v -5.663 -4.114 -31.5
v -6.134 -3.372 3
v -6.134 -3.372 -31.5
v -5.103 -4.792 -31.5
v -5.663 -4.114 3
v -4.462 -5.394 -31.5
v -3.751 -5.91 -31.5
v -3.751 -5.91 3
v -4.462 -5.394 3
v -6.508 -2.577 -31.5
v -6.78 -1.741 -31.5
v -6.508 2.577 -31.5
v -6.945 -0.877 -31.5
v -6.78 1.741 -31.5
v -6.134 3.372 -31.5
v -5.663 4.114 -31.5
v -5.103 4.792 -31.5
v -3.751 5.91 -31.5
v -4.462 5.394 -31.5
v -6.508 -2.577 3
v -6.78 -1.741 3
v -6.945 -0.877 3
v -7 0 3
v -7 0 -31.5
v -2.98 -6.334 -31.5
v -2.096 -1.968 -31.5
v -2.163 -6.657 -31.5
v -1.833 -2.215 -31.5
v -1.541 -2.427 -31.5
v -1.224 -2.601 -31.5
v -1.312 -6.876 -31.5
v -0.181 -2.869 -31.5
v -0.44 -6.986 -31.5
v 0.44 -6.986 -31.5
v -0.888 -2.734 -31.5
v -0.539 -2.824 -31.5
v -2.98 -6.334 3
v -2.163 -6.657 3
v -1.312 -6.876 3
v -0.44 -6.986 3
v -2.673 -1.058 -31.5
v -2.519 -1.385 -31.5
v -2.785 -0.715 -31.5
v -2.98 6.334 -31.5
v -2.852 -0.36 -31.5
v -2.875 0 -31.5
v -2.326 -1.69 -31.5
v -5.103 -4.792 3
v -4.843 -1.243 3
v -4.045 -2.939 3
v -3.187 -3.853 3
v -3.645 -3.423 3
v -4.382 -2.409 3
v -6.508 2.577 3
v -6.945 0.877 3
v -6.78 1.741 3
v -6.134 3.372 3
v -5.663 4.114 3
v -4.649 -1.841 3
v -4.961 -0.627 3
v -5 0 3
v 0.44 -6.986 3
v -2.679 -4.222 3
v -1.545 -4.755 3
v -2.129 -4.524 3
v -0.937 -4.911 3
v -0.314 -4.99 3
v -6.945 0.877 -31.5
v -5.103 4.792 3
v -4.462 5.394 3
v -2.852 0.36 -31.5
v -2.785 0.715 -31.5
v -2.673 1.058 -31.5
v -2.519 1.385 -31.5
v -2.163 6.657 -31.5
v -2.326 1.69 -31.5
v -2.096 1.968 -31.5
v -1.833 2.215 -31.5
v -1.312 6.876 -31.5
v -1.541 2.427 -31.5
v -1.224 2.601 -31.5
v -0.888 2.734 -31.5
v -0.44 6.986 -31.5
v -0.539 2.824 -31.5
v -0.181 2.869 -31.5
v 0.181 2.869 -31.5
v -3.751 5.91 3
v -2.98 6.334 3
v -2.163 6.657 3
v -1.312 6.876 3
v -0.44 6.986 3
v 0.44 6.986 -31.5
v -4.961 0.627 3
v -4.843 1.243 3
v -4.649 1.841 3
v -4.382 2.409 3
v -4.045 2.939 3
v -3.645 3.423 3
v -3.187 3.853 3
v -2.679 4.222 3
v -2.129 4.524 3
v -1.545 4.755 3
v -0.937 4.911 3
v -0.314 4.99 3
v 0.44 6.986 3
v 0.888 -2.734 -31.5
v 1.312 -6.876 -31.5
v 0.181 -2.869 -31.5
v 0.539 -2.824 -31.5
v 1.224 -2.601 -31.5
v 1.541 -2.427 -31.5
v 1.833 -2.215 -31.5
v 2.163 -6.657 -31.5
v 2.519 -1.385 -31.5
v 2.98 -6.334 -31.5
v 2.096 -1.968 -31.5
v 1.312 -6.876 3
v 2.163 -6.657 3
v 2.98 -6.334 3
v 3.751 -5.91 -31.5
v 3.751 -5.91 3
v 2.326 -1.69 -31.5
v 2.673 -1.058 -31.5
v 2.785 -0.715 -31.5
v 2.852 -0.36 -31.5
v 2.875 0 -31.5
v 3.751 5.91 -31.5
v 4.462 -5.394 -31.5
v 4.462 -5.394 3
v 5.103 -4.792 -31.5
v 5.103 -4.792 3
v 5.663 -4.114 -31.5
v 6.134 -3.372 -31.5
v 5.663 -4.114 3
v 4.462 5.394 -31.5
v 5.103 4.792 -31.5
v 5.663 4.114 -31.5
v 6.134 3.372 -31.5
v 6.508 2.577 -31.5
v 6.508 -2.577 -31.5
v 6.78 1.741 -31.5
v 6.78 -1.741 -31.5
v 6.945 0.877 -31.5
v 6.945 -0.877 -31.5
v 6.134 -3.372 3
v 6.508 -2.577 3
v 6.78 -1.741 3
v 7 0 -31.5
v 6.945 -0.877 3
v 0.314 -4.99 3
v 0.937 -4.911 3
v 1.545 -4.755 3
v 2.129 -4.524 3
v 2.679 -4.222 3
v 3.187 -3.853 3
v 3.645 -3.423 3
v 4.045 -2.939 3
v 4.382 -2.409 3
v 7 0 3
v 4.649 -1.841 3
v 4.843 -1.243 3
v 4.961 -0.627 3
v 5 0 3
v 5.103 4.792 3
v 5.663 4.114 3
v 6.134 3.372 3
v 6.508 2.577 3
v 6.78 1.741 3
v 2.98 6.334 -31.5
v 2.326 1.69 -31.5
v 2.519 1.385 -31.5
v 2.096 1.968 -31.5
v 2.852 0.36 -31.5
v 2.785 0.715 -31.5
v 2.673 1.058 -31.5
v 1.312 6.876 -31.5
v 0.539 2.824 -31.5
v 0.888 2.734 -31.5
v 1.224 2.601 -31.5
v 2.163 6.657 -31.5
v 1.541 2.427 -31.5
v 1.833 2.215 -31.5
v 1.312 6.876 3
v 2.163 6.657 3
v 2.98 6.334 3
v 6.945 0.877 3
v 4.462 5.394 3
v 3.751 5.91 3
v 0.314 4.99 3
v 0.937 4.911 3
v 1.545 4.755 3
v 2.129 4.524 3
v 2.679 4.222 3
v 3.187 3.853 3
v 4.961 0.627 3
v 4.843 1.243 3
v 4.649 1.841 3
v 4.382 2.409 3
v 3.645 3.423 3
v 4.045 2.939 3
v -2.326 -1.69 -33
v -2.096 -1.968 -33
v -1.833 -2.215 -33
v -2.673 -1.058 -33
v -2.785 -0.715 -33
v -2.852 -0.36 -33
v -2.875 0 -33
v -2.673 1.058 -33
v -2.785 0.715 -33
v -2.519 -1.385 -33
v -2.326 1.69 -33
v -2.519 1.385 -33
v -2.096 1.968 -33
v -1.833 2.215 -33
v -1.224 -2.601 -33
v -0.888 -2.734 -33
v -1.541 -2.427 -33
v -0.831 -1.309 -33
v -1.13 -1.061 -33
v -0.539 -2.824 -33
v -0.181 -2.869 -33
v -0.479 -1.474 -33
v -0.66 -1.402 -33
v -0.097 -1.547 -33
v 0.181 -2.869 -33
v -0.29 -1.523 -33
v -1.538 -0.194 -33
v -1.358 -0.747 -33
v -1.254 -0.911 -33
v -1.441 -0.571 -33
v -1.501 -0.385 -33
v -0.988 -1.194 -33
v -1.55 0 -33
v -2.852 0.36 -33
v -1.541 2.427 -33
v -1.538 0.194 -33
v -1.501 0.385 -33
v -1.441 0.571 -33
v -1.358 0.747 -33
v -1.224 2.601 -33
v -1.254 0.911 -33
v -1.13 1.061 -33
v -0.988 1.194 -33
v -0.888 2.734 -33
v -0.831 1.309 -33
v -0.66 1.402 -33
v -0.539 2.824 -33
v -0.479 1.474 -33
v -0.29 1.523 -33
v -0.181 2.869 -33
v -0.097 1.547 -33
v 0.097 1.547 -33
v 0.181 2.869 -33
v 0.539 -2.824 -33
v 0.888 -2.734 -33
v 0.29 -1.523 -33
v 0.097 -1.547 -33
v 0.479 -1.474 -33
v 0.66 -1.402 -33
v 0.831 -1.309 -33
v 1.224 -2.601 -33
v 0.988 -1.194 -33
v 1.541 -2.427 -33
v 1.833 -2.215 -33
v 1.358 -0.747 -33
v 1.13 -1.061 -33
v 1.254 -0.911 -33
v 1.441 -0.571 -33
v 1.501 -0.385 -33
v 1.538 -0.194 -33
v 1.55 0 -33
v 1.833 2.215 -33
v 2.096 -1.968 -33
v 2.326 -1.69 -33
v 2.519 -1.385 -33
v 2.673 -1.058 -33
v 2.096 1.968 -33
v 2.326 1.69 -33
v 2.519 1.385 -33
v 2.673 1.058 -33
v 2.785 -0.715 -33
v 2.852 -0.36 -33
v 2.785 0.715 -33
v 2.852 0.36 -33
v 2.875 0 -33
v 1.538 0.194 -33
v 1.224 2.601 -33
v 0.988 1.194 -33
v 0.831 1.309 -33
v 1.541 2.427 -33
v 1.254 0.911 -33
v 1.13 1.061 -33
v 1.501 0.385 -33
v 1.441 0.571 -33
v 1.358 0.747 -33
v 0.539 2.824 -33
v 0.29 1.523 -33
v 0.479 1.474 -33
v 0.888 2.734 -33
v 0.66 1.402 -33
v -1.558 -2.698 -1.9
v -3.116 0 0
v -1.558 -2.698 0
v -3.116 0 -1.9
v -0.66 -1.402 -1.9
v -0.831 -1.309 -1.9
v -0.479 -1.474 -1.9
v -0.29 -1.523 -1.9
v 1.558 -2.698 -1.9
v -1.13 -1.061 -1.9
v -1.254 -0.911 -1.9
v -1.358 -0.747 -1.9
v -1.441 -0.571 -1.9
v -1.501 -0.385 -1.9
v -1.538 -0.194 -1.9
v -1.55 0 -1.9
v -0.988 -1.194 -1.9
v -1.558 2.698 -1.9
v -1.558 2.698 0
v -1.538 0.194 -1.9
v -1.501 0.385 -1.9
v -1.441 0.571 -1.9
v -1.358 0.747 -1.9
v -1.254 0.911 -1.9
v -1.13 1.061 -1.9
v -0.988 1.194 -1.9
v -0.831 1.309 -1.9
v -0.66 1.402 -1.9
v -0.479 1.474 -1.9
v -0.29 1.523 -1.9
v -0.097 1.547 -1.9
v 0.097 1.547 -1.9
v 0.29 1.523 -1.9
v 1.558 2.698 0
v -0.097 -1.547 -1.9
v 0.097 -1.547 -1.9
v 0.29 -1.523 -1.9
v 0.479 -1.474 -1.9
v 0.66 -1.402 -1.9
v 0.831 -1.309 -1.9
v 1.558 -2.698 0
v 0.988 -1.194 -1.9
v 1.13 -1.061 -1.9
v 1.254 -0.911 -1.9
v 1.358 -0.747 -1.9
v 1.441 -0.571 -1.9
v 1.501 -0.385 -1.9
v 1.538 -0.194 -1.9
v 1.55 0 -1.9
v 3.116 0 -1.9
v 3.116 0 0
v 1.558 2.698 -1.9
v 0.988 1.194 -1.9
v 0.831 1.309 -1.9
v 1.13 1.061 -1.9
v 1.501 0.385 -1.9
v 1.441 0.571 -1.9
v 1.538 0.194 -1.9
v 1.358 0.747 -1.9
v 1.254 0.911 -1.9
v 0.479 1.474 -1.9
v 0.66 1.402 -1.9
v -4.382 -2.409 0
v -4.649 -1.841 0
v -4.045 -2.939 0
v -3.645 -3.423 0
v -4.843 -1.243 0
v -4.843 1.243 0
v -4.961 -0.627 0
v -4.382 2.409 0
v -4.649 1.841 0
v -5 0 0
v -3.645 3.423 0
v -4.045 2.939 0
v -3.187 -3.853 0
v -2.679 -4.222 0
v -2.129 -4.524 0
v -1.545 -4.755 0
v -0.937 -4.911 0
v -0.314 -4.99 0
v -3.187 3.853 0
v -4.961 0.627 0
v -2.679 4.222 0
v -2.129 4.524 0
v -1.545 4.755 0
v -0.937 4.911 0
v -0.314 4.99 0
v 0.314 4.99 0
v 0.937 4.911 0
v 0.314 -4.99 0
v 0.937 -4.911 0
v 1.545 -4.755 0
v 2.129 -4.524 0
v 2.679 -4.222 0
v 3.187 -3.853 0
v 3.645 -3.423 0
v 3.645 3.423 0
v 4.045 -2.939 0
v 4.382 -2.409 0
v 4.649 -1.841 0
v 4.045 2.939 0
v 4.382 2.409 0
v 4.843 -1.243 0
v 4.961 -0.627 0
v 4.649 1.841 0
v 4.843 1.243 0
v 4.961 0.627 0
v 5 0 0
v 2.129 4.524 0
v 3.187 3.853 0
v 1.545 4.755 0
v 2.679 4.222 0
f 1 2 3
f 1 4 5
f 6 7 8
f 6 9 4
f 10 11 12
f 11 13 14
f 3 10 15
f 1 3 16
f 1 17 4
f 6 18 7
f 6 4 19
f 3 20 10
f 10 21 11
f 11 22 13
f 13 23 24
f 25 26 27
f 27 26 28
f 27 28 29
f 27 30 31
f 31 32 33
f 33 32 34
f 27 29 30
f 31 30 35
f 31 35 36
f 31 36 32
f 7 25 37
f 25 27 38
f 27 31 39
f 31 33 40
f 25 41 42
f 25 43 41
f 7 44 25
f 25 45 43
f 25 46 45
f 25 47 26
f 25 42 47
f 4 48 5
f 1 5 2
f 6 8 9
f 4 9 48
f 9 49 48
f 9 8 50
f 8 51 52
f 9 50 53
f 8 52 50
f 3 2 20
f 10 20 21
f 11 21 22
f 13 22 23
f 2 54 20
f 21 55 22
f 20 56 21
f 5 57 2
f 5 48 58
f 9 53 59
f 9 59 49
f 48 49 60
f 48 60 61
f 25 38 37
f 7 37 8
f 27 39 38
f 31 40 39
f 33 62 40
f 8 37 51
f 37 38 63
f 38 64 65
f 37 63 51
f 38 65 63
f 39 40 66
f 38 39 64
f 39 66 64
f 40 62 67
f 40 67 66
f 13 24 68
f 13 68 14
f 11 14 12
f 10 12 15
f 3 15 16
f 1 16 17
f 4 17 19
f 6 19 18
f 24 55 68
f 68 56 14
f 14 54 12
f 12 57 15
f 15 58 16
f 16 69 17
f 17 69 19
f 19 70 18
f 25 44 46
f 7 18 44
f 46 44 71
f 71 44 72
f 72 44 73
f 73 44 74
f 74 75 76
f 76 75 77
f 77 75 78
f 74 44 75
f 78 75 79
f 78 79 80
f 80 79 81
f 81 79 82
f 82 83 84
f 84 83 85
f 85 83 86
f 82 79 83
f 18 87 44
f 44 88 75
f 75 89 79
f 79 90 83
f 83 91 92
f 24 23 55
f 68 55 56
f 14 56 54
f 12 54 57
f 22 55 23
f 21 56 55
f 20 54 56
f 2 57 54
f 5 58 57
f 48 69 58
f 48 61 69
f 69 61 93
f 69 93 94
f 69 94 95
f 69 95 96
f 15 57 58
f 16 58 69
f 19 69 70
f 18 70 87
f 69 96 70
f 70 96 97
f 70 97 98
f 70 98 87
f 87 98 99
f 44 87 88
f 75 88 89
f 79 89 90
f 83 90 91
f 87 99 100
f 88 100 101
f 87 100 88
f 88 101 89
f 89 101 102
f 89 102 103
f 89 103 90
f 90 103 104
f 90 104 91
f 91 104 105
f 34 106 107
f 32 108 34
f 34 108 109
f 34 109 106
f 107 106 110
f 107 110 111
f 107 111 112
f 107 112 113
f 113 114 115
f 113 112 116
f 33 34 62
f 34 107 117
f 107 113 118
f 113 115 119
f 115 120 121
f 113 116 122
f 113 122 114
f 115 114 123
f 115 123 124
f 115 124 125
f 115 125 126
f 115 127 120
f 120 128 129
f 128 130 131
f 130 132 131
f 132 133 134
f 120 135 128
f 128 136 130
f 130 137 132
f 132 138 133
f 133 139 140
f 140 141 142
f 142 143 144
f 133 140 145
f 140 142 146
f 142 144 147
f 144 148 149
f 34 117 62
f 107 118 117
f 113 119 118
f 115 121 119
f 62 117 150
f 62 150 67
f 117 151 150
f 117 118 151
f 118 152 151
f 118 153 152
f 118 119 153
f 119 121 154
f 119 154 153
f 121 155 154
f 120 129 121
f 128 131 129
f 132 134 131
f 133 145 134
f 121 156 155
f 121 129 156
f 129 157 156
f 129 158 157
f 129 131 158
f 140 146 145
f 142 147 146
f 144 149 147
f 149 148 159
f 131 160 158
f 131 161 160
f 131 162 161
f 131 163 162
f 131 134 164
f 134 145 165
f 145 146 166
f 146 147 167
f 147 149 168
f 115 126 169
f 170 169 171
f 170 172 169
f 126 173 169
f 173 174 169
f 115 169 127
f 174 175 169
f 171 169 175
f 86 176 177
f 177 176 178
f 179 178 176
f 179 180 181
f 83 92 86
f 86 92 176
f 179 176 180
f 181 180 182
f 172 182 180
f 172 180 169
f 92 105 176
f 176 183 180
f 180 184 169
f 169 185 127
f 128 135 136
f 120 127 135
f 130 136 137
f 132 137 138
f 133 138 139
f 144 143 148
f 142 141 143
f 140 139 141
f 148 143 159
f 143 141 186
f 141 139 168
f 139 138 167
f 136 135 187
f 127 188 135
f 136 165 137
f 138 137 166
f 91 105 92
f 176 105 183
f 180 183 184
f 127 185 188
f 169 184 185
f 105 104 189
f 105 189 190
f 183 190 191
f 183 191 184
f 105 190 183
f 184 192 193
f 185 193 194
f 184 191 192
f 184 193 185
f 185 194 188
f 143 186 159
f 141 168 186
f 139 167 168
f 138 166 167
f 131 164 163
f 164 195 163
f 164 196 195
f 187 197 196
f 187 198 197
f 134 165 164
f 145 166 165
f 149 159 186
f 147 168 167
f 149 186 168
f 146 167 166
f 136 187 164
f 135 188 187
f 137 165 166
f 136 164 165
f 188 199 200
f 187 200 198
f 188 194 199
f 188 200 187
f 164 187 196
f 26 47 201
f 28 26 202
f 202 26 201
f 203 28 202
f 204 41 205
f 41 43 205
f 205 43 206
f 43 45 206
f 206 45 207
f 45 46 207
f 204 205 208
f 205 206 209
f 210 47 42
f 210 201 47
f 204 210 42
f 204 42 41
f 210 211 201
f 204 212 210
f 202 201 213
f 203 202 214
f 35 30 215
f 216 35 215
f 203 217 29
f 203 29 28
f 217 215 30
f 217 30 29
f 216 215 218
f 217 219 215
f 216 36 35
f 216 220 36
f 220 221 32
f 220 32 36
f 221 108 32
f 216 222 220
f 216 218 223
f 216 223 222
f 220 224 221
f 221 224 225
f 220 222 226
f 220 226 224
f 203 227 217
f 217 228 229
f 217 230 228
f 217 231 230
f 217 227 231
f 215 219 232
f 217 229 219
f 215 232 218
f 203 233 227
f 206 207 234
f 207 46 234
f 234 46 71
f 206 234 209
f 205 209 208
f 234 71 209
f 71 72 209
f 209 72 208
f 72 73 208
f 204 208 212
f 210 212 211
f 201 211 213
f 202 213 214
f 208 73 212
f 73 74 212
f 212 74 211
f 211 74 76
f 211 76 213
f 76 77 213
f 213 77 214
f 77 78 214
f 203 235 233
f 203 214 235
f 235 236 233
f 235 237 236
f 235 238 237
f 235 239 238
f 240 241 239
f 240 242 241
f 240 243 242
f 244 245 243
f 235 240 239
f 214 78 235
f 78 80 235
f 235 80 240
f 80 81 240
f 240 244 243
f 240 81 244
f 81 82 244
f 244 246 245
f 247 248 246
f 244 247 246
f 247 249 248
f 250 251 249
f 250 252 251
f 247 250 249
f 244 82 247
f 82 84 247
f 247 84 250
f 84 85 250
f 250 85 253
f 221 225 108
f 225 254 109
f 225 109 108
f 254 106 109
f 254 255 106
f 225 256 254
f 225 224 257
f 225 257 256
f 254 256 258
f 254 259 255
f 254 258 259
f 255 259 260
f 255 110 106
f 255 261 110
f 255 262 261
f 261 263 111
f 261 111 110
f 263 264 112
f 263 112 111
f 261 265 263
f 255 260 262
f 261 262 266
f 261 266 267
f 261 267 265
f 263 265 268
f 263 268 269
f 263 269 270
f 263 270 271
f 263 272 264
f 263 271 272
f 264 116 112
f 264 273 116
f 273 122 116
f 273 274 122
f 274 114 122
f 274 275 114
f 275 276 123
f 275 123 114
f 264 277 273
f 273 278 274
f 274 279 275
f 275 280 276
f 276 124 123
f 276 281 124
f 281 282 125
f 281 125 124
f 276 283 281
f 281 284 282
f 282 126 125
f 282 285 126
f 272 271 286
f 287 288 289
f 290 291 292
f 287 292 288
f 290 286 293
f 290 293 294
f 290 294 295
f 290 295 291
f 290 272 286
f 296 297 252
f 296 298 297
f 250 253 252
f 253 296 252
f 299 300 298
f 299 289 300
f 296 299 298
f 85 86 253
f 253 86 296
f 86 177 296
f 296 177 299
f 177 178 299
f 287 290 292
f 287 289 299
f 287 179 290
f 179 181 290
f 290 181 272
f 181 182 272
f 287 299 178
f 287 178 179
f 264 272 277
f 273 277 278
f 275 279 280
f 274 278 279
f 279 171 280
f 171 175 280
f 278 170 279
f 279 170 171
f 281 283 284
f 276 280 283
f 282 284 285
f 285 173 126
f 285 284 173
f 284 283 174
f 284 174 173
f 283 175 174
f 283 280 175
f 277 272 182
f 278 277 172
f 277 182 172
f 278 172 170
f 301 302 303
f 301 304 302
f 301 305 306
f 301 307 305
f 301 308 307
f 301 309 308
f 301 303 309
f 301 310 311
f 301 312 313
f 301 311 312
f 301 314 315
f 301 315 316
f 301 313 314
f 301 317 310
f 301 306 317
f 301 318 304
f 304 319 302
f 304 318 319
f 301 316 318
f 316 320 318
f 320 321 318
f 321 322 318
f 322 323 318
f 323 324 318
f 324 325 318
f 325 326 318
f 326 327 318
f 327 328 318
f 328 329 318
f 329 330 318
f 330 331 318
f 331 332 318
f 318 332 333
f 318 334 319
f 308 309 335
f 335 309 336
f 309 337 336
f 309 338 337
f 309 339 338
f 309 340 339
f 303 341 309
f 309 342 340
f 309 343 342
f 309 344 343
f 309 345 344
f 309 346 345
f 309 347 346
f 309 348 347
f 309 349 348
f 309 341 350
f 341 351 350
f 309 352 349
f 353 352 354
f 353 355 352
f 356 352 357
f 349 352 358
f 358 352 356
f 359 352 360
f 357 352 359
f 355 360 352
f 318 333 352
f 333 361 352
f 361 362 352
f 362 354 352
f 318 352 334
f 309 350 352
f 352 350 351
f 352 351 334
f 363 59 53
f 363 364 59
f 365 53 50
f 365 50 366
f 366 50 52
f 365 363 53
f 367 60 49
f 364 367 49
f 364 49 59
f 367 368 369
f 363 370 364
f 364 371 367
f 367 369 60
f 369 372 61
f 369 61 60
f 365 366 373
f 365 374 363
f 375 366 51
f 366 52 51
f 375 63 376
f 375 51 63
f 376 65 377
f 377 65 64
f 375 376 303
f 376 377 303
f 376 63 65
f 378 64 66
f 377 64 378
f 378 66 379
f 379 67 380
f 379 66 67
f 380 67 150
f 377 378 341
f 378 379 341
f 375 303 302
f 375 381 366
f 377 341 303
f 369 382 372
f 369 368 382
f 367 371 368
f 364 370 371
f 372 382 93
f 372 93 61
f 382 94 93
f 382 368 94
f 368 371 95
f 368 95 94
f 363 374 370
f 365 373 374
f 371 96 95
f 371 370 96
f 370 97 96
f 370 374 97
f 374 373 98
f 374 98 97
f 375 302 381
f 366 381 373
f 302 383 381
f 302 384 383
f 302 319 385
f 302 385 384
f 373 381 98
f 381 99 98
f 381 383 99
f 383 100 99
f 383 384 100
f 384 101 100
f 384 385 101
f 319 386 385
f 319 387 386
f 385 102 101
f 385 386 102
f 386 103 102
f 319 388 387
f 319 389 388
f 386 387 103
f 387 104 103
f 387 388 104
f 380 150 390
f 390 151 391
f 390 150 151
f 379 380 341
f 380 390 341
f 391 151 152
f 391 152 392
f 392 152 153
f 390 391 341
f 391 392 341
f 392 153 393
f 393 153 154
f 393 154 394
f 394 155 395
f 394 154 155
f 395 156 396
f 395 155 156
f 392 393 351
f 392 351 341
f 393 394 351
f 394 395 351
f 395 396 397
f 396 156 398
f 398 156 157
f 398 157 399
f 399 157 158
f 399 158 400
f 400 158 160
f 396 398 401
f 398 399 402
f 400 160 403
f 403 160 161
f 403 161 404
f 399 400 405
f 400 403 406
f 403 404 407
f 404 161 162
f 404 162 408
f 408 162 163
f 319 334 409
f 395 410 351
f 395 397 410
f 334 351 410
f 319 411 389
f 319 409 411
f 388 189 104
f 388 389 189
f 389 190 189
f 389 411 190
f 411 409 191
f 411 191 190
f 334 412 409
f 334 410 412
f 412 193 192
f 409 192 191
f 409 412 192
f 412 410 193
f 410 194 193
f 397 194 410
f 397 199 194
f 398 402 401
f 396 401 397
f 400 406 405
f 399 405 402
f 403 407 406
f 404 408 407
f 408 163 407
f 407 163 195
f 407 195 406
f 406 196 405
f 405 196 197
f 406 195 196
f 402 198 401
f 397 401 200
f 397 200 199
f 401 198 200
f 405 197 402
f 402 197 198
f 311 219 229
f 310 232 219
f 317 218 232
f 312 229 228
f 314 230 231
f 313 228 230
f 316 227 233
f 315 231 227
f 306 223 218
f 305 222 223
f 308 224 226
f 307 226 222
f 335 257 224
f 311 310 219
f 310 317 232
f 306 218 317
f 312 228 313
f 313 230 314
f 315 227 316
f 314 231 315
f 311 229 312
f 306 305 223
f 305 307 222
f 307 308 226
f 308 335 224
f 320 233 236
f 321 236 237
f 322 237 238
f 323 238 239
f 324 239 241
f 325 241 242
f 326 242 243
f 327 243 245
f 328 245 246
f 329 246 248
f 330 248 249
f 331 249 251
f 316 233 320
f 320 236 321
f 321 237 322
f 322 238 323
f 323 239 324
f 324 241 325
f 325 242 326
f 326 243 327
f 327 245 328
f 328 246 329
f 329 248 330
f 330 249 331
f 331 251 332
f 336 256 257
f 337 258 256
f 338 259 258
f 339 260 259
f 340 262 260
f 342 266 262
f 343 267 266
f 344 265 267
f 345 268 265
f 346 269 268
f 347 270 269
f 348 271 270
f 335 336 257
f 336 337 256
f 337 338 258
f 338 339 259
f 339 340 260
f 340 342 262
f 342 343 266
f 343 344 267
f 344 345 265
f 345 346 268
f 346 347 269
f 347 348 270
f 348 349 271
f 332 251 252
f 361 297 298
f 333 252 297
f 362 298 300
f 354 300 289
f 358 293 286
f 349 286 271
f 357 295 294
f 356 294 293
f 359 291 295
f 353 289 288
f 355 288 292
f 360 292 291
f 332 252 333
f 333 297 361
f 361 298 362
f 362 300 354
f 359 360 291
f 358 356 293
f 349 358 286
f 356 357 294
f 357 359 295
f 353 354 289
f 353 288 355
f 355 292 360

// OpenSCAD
$fn = 50;


difference() {
	union() {
		translate(v = [0, 0, -31.5000000000]) {
			cylinder(h = 34.5000000000, r = 7.0000000000);
		}
		#translate(v = [0, 0, -33.0000000000]) {
			cylinder(h = 33, r = 2.8750000000);
		}
	}
	union() {
		translate(v = [0, 0, 0]) {
			rotate(a = [0, 0, 0]) {
				difference() {
					union() {
						translate(v = [0, 0, -1.9000000000]) {
							linear_extrude(height = 1.9000000000) {
								polygon(points = [[3.1158000000, 0.0000000000], [1.5579000000, 2.6983619531], [-1.5579000000, 2.6983619531], [-3.1158000000, 0.0000000000], [-1.5579000000, -2.6983619531], [1.5579000000, -2.6983619531]]);
							}
						}
					}
					union();
				}
			}
		}
		#cylinder(h = 3, r = 5.0000000000);
		#translate(v = [0, 0, -100.0000000000]) {
			cylinder(h = 200, r = 1.5500000000);
		}
	}
}
